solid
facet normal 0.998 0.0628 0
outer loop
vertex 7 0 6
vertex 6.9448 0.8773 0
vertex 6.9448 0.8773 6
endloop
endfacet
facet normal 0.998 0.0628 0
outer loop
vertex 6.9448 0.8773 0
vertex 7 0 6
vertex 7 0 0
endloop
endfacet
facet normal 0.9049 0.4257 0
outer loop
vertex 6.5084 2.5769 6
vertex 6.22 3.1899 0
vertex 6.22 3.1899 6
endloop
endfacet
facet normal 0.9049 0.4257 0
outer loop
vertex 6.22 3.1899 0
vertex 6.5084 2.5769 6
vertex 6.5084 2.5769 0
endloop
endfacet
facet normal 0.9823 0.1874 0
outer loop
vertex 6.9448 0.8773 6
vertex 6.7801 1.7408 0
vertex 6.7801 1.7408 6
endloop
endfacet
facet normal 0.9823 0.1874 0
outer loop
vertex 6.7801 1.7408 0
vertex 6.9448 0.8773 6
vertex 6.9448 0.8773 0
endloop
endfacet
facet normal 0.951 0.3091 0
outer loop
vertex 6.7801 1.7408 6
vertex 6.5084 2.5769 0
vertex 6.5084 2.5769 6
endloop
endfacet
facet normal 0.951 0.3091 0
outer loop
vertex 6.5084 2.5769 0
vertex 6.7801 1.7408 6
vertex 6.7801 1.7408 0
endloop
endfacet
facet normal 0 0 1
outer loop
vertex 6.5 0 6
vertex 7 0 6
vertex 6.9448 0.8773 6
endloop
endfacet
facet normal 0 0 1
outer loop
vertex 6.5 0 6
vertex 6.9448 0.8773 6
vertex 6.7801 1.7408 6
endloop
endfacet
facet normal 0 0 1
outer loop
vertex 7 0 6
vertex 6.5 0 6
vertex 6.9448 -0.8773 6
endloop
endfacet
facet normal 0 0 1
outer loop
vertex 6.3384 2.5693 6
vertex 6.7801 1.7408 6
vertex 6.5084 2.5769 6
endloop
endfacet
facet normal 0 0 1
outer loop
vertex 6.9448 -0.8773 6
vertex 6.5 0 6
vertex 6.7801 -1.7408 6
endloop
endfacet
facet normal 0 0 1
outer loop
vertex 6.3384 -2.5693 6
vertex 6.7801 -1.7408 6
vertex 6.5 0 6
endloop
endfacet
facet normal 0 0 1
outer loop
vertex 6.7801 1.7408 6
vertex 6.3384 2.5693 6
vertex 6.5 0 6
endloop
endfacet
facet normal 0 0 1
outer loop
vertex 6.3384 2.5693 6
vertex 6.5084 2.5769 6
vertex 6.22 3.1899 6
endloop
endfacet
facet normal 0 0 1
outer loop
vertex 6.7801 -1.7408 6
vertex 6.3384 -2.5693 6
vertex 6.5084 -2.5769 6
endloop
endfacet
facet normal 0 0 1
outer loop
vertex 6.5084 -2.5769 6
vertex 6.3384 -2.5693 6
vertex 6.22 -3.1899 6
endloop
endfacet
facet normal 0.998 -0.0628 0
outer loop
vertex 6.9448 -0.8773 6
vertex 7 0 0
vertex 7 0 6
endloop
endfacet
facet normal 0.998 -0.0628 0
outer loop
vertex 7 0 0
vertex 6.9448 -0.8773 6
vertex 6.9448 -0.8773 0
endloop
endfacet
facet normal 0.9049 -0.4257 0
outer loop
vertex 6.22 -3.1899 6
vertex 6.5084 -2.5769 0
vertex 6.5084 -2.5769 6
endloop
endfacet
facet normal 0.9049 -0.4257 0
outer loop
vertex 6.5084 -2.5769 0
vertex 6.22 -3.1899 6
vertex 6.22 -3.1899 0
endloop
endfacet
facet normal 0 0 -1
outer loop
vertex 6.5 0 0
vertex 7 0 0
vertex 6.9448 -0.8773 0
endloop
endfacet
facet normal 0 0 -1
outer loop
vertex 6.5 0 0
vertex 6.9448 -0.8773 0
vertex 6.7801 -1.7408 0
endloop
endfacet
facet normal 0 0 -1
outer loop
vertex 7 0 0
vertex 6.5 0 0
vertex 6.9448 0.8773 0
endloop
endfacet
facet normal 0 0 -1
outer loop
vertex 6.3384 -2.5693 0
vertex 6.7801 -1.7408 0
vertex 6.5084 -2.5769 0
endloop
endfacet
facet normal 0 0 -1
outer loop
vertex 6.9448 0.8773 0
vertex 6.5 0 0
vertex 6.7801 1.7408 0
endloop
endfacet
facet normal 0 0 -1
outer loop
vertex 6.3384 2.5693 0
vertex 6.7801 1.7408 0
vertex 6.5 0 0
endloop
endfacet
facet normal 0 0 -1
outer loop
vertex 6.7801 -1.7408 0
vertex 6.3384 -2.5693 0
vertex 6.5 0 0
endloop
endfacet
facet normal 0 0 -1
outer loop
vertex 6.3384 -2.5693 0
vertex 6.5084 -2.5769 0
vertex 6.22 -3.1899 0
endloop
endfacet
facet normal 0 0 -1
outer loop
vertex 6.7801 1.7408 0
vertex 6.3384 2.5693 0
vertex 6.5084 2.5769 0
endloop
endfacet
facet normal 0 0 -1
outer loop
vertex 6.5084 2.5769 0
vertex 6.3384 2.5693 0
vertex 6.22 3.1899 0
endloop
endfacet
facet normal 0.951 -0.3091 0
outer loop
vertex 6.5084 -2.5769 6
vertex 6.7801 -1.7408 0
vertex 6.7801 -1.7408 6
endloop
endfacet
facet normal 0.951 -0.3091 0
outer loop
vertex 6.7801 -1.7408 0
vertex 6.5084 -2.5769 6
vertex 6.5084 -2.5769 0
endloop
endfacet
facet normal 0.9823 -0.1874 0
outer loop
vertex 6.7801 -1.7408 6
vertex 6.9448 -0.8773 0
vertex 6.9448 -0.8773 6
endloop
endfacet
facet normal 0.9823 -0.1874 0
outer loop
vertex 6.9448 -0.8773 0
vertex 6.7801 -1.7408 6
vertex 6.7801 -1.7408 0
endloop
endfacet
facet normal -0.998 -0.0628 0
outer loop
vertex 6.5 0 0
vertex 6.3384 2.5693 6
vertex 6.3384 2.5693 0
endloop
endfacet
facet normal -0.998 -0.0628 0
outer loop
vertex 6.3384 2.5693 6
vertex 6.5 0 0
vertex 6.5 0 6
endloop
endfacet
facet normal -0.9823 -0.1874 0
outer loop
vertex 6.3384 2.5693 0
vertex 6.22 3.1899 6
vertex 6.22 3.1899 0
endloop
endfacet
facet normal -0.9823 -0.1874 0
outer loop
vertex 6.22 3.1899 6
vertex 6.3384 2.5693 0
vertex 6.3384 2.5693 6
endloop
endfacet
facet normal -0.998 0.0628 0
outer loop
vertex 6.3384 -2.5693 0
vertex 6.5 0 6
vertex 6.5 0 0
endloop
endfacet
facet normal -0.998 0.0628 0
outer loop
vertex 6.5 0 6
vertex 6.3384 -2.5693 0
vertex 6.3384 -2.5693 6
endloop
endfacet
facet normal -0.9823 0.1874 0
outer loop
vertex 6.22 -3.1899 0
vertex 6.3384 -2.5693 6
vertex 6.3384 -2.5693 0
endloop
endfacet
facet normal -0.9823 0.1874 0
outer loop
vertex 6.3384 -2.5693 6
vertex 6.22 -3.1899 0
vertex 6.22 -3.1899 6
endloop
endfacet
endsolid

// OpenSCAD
$fn = 50;


difference() {
	union() {
		cylinder(h = 6, r = 7.0000000000);
		translate(v = [-17.0000000000, 0, 0]) {
			cylinder(h = 6, r = 7.0000000000);
		}
	}
	union() {
		cylinder(h = 6, r = 3.2500000000);
		cylinder(h = 6, r = 1.8000000000);
		cylinder(h = 6, r = 1.8000000000);
		cylinder(h = 6, r = 1.8000000000);
		translate(v = [-21.5000000000, 0, 0]) {
			hull() {
				translate(v = [-3.7500000000, 0.0000000000, 0]) {
					cylinder(h = 6, r = 10.5000000000);
				}
				translate(v = [3.7500000000, 0.0000000000, 0]) {
					cylinder(h = 6, r = 10.5000000000);
				}
				translate(v = [-3.7500000000, -0.0000000000, 0]) {
					cylinder(h = 6, r = 10.5000000000);
				}
				translate(v = [3.7500000000, -0.0000000000, 0]) {
					cylinder(h = 6, r = 10.5000000000);
				}
			}
		}
		translate(v = [-14.0000000000, 0, 0.0000000000]) {
			cylinder(h = 6, r = 20.5000000000);
		}
	}
}
